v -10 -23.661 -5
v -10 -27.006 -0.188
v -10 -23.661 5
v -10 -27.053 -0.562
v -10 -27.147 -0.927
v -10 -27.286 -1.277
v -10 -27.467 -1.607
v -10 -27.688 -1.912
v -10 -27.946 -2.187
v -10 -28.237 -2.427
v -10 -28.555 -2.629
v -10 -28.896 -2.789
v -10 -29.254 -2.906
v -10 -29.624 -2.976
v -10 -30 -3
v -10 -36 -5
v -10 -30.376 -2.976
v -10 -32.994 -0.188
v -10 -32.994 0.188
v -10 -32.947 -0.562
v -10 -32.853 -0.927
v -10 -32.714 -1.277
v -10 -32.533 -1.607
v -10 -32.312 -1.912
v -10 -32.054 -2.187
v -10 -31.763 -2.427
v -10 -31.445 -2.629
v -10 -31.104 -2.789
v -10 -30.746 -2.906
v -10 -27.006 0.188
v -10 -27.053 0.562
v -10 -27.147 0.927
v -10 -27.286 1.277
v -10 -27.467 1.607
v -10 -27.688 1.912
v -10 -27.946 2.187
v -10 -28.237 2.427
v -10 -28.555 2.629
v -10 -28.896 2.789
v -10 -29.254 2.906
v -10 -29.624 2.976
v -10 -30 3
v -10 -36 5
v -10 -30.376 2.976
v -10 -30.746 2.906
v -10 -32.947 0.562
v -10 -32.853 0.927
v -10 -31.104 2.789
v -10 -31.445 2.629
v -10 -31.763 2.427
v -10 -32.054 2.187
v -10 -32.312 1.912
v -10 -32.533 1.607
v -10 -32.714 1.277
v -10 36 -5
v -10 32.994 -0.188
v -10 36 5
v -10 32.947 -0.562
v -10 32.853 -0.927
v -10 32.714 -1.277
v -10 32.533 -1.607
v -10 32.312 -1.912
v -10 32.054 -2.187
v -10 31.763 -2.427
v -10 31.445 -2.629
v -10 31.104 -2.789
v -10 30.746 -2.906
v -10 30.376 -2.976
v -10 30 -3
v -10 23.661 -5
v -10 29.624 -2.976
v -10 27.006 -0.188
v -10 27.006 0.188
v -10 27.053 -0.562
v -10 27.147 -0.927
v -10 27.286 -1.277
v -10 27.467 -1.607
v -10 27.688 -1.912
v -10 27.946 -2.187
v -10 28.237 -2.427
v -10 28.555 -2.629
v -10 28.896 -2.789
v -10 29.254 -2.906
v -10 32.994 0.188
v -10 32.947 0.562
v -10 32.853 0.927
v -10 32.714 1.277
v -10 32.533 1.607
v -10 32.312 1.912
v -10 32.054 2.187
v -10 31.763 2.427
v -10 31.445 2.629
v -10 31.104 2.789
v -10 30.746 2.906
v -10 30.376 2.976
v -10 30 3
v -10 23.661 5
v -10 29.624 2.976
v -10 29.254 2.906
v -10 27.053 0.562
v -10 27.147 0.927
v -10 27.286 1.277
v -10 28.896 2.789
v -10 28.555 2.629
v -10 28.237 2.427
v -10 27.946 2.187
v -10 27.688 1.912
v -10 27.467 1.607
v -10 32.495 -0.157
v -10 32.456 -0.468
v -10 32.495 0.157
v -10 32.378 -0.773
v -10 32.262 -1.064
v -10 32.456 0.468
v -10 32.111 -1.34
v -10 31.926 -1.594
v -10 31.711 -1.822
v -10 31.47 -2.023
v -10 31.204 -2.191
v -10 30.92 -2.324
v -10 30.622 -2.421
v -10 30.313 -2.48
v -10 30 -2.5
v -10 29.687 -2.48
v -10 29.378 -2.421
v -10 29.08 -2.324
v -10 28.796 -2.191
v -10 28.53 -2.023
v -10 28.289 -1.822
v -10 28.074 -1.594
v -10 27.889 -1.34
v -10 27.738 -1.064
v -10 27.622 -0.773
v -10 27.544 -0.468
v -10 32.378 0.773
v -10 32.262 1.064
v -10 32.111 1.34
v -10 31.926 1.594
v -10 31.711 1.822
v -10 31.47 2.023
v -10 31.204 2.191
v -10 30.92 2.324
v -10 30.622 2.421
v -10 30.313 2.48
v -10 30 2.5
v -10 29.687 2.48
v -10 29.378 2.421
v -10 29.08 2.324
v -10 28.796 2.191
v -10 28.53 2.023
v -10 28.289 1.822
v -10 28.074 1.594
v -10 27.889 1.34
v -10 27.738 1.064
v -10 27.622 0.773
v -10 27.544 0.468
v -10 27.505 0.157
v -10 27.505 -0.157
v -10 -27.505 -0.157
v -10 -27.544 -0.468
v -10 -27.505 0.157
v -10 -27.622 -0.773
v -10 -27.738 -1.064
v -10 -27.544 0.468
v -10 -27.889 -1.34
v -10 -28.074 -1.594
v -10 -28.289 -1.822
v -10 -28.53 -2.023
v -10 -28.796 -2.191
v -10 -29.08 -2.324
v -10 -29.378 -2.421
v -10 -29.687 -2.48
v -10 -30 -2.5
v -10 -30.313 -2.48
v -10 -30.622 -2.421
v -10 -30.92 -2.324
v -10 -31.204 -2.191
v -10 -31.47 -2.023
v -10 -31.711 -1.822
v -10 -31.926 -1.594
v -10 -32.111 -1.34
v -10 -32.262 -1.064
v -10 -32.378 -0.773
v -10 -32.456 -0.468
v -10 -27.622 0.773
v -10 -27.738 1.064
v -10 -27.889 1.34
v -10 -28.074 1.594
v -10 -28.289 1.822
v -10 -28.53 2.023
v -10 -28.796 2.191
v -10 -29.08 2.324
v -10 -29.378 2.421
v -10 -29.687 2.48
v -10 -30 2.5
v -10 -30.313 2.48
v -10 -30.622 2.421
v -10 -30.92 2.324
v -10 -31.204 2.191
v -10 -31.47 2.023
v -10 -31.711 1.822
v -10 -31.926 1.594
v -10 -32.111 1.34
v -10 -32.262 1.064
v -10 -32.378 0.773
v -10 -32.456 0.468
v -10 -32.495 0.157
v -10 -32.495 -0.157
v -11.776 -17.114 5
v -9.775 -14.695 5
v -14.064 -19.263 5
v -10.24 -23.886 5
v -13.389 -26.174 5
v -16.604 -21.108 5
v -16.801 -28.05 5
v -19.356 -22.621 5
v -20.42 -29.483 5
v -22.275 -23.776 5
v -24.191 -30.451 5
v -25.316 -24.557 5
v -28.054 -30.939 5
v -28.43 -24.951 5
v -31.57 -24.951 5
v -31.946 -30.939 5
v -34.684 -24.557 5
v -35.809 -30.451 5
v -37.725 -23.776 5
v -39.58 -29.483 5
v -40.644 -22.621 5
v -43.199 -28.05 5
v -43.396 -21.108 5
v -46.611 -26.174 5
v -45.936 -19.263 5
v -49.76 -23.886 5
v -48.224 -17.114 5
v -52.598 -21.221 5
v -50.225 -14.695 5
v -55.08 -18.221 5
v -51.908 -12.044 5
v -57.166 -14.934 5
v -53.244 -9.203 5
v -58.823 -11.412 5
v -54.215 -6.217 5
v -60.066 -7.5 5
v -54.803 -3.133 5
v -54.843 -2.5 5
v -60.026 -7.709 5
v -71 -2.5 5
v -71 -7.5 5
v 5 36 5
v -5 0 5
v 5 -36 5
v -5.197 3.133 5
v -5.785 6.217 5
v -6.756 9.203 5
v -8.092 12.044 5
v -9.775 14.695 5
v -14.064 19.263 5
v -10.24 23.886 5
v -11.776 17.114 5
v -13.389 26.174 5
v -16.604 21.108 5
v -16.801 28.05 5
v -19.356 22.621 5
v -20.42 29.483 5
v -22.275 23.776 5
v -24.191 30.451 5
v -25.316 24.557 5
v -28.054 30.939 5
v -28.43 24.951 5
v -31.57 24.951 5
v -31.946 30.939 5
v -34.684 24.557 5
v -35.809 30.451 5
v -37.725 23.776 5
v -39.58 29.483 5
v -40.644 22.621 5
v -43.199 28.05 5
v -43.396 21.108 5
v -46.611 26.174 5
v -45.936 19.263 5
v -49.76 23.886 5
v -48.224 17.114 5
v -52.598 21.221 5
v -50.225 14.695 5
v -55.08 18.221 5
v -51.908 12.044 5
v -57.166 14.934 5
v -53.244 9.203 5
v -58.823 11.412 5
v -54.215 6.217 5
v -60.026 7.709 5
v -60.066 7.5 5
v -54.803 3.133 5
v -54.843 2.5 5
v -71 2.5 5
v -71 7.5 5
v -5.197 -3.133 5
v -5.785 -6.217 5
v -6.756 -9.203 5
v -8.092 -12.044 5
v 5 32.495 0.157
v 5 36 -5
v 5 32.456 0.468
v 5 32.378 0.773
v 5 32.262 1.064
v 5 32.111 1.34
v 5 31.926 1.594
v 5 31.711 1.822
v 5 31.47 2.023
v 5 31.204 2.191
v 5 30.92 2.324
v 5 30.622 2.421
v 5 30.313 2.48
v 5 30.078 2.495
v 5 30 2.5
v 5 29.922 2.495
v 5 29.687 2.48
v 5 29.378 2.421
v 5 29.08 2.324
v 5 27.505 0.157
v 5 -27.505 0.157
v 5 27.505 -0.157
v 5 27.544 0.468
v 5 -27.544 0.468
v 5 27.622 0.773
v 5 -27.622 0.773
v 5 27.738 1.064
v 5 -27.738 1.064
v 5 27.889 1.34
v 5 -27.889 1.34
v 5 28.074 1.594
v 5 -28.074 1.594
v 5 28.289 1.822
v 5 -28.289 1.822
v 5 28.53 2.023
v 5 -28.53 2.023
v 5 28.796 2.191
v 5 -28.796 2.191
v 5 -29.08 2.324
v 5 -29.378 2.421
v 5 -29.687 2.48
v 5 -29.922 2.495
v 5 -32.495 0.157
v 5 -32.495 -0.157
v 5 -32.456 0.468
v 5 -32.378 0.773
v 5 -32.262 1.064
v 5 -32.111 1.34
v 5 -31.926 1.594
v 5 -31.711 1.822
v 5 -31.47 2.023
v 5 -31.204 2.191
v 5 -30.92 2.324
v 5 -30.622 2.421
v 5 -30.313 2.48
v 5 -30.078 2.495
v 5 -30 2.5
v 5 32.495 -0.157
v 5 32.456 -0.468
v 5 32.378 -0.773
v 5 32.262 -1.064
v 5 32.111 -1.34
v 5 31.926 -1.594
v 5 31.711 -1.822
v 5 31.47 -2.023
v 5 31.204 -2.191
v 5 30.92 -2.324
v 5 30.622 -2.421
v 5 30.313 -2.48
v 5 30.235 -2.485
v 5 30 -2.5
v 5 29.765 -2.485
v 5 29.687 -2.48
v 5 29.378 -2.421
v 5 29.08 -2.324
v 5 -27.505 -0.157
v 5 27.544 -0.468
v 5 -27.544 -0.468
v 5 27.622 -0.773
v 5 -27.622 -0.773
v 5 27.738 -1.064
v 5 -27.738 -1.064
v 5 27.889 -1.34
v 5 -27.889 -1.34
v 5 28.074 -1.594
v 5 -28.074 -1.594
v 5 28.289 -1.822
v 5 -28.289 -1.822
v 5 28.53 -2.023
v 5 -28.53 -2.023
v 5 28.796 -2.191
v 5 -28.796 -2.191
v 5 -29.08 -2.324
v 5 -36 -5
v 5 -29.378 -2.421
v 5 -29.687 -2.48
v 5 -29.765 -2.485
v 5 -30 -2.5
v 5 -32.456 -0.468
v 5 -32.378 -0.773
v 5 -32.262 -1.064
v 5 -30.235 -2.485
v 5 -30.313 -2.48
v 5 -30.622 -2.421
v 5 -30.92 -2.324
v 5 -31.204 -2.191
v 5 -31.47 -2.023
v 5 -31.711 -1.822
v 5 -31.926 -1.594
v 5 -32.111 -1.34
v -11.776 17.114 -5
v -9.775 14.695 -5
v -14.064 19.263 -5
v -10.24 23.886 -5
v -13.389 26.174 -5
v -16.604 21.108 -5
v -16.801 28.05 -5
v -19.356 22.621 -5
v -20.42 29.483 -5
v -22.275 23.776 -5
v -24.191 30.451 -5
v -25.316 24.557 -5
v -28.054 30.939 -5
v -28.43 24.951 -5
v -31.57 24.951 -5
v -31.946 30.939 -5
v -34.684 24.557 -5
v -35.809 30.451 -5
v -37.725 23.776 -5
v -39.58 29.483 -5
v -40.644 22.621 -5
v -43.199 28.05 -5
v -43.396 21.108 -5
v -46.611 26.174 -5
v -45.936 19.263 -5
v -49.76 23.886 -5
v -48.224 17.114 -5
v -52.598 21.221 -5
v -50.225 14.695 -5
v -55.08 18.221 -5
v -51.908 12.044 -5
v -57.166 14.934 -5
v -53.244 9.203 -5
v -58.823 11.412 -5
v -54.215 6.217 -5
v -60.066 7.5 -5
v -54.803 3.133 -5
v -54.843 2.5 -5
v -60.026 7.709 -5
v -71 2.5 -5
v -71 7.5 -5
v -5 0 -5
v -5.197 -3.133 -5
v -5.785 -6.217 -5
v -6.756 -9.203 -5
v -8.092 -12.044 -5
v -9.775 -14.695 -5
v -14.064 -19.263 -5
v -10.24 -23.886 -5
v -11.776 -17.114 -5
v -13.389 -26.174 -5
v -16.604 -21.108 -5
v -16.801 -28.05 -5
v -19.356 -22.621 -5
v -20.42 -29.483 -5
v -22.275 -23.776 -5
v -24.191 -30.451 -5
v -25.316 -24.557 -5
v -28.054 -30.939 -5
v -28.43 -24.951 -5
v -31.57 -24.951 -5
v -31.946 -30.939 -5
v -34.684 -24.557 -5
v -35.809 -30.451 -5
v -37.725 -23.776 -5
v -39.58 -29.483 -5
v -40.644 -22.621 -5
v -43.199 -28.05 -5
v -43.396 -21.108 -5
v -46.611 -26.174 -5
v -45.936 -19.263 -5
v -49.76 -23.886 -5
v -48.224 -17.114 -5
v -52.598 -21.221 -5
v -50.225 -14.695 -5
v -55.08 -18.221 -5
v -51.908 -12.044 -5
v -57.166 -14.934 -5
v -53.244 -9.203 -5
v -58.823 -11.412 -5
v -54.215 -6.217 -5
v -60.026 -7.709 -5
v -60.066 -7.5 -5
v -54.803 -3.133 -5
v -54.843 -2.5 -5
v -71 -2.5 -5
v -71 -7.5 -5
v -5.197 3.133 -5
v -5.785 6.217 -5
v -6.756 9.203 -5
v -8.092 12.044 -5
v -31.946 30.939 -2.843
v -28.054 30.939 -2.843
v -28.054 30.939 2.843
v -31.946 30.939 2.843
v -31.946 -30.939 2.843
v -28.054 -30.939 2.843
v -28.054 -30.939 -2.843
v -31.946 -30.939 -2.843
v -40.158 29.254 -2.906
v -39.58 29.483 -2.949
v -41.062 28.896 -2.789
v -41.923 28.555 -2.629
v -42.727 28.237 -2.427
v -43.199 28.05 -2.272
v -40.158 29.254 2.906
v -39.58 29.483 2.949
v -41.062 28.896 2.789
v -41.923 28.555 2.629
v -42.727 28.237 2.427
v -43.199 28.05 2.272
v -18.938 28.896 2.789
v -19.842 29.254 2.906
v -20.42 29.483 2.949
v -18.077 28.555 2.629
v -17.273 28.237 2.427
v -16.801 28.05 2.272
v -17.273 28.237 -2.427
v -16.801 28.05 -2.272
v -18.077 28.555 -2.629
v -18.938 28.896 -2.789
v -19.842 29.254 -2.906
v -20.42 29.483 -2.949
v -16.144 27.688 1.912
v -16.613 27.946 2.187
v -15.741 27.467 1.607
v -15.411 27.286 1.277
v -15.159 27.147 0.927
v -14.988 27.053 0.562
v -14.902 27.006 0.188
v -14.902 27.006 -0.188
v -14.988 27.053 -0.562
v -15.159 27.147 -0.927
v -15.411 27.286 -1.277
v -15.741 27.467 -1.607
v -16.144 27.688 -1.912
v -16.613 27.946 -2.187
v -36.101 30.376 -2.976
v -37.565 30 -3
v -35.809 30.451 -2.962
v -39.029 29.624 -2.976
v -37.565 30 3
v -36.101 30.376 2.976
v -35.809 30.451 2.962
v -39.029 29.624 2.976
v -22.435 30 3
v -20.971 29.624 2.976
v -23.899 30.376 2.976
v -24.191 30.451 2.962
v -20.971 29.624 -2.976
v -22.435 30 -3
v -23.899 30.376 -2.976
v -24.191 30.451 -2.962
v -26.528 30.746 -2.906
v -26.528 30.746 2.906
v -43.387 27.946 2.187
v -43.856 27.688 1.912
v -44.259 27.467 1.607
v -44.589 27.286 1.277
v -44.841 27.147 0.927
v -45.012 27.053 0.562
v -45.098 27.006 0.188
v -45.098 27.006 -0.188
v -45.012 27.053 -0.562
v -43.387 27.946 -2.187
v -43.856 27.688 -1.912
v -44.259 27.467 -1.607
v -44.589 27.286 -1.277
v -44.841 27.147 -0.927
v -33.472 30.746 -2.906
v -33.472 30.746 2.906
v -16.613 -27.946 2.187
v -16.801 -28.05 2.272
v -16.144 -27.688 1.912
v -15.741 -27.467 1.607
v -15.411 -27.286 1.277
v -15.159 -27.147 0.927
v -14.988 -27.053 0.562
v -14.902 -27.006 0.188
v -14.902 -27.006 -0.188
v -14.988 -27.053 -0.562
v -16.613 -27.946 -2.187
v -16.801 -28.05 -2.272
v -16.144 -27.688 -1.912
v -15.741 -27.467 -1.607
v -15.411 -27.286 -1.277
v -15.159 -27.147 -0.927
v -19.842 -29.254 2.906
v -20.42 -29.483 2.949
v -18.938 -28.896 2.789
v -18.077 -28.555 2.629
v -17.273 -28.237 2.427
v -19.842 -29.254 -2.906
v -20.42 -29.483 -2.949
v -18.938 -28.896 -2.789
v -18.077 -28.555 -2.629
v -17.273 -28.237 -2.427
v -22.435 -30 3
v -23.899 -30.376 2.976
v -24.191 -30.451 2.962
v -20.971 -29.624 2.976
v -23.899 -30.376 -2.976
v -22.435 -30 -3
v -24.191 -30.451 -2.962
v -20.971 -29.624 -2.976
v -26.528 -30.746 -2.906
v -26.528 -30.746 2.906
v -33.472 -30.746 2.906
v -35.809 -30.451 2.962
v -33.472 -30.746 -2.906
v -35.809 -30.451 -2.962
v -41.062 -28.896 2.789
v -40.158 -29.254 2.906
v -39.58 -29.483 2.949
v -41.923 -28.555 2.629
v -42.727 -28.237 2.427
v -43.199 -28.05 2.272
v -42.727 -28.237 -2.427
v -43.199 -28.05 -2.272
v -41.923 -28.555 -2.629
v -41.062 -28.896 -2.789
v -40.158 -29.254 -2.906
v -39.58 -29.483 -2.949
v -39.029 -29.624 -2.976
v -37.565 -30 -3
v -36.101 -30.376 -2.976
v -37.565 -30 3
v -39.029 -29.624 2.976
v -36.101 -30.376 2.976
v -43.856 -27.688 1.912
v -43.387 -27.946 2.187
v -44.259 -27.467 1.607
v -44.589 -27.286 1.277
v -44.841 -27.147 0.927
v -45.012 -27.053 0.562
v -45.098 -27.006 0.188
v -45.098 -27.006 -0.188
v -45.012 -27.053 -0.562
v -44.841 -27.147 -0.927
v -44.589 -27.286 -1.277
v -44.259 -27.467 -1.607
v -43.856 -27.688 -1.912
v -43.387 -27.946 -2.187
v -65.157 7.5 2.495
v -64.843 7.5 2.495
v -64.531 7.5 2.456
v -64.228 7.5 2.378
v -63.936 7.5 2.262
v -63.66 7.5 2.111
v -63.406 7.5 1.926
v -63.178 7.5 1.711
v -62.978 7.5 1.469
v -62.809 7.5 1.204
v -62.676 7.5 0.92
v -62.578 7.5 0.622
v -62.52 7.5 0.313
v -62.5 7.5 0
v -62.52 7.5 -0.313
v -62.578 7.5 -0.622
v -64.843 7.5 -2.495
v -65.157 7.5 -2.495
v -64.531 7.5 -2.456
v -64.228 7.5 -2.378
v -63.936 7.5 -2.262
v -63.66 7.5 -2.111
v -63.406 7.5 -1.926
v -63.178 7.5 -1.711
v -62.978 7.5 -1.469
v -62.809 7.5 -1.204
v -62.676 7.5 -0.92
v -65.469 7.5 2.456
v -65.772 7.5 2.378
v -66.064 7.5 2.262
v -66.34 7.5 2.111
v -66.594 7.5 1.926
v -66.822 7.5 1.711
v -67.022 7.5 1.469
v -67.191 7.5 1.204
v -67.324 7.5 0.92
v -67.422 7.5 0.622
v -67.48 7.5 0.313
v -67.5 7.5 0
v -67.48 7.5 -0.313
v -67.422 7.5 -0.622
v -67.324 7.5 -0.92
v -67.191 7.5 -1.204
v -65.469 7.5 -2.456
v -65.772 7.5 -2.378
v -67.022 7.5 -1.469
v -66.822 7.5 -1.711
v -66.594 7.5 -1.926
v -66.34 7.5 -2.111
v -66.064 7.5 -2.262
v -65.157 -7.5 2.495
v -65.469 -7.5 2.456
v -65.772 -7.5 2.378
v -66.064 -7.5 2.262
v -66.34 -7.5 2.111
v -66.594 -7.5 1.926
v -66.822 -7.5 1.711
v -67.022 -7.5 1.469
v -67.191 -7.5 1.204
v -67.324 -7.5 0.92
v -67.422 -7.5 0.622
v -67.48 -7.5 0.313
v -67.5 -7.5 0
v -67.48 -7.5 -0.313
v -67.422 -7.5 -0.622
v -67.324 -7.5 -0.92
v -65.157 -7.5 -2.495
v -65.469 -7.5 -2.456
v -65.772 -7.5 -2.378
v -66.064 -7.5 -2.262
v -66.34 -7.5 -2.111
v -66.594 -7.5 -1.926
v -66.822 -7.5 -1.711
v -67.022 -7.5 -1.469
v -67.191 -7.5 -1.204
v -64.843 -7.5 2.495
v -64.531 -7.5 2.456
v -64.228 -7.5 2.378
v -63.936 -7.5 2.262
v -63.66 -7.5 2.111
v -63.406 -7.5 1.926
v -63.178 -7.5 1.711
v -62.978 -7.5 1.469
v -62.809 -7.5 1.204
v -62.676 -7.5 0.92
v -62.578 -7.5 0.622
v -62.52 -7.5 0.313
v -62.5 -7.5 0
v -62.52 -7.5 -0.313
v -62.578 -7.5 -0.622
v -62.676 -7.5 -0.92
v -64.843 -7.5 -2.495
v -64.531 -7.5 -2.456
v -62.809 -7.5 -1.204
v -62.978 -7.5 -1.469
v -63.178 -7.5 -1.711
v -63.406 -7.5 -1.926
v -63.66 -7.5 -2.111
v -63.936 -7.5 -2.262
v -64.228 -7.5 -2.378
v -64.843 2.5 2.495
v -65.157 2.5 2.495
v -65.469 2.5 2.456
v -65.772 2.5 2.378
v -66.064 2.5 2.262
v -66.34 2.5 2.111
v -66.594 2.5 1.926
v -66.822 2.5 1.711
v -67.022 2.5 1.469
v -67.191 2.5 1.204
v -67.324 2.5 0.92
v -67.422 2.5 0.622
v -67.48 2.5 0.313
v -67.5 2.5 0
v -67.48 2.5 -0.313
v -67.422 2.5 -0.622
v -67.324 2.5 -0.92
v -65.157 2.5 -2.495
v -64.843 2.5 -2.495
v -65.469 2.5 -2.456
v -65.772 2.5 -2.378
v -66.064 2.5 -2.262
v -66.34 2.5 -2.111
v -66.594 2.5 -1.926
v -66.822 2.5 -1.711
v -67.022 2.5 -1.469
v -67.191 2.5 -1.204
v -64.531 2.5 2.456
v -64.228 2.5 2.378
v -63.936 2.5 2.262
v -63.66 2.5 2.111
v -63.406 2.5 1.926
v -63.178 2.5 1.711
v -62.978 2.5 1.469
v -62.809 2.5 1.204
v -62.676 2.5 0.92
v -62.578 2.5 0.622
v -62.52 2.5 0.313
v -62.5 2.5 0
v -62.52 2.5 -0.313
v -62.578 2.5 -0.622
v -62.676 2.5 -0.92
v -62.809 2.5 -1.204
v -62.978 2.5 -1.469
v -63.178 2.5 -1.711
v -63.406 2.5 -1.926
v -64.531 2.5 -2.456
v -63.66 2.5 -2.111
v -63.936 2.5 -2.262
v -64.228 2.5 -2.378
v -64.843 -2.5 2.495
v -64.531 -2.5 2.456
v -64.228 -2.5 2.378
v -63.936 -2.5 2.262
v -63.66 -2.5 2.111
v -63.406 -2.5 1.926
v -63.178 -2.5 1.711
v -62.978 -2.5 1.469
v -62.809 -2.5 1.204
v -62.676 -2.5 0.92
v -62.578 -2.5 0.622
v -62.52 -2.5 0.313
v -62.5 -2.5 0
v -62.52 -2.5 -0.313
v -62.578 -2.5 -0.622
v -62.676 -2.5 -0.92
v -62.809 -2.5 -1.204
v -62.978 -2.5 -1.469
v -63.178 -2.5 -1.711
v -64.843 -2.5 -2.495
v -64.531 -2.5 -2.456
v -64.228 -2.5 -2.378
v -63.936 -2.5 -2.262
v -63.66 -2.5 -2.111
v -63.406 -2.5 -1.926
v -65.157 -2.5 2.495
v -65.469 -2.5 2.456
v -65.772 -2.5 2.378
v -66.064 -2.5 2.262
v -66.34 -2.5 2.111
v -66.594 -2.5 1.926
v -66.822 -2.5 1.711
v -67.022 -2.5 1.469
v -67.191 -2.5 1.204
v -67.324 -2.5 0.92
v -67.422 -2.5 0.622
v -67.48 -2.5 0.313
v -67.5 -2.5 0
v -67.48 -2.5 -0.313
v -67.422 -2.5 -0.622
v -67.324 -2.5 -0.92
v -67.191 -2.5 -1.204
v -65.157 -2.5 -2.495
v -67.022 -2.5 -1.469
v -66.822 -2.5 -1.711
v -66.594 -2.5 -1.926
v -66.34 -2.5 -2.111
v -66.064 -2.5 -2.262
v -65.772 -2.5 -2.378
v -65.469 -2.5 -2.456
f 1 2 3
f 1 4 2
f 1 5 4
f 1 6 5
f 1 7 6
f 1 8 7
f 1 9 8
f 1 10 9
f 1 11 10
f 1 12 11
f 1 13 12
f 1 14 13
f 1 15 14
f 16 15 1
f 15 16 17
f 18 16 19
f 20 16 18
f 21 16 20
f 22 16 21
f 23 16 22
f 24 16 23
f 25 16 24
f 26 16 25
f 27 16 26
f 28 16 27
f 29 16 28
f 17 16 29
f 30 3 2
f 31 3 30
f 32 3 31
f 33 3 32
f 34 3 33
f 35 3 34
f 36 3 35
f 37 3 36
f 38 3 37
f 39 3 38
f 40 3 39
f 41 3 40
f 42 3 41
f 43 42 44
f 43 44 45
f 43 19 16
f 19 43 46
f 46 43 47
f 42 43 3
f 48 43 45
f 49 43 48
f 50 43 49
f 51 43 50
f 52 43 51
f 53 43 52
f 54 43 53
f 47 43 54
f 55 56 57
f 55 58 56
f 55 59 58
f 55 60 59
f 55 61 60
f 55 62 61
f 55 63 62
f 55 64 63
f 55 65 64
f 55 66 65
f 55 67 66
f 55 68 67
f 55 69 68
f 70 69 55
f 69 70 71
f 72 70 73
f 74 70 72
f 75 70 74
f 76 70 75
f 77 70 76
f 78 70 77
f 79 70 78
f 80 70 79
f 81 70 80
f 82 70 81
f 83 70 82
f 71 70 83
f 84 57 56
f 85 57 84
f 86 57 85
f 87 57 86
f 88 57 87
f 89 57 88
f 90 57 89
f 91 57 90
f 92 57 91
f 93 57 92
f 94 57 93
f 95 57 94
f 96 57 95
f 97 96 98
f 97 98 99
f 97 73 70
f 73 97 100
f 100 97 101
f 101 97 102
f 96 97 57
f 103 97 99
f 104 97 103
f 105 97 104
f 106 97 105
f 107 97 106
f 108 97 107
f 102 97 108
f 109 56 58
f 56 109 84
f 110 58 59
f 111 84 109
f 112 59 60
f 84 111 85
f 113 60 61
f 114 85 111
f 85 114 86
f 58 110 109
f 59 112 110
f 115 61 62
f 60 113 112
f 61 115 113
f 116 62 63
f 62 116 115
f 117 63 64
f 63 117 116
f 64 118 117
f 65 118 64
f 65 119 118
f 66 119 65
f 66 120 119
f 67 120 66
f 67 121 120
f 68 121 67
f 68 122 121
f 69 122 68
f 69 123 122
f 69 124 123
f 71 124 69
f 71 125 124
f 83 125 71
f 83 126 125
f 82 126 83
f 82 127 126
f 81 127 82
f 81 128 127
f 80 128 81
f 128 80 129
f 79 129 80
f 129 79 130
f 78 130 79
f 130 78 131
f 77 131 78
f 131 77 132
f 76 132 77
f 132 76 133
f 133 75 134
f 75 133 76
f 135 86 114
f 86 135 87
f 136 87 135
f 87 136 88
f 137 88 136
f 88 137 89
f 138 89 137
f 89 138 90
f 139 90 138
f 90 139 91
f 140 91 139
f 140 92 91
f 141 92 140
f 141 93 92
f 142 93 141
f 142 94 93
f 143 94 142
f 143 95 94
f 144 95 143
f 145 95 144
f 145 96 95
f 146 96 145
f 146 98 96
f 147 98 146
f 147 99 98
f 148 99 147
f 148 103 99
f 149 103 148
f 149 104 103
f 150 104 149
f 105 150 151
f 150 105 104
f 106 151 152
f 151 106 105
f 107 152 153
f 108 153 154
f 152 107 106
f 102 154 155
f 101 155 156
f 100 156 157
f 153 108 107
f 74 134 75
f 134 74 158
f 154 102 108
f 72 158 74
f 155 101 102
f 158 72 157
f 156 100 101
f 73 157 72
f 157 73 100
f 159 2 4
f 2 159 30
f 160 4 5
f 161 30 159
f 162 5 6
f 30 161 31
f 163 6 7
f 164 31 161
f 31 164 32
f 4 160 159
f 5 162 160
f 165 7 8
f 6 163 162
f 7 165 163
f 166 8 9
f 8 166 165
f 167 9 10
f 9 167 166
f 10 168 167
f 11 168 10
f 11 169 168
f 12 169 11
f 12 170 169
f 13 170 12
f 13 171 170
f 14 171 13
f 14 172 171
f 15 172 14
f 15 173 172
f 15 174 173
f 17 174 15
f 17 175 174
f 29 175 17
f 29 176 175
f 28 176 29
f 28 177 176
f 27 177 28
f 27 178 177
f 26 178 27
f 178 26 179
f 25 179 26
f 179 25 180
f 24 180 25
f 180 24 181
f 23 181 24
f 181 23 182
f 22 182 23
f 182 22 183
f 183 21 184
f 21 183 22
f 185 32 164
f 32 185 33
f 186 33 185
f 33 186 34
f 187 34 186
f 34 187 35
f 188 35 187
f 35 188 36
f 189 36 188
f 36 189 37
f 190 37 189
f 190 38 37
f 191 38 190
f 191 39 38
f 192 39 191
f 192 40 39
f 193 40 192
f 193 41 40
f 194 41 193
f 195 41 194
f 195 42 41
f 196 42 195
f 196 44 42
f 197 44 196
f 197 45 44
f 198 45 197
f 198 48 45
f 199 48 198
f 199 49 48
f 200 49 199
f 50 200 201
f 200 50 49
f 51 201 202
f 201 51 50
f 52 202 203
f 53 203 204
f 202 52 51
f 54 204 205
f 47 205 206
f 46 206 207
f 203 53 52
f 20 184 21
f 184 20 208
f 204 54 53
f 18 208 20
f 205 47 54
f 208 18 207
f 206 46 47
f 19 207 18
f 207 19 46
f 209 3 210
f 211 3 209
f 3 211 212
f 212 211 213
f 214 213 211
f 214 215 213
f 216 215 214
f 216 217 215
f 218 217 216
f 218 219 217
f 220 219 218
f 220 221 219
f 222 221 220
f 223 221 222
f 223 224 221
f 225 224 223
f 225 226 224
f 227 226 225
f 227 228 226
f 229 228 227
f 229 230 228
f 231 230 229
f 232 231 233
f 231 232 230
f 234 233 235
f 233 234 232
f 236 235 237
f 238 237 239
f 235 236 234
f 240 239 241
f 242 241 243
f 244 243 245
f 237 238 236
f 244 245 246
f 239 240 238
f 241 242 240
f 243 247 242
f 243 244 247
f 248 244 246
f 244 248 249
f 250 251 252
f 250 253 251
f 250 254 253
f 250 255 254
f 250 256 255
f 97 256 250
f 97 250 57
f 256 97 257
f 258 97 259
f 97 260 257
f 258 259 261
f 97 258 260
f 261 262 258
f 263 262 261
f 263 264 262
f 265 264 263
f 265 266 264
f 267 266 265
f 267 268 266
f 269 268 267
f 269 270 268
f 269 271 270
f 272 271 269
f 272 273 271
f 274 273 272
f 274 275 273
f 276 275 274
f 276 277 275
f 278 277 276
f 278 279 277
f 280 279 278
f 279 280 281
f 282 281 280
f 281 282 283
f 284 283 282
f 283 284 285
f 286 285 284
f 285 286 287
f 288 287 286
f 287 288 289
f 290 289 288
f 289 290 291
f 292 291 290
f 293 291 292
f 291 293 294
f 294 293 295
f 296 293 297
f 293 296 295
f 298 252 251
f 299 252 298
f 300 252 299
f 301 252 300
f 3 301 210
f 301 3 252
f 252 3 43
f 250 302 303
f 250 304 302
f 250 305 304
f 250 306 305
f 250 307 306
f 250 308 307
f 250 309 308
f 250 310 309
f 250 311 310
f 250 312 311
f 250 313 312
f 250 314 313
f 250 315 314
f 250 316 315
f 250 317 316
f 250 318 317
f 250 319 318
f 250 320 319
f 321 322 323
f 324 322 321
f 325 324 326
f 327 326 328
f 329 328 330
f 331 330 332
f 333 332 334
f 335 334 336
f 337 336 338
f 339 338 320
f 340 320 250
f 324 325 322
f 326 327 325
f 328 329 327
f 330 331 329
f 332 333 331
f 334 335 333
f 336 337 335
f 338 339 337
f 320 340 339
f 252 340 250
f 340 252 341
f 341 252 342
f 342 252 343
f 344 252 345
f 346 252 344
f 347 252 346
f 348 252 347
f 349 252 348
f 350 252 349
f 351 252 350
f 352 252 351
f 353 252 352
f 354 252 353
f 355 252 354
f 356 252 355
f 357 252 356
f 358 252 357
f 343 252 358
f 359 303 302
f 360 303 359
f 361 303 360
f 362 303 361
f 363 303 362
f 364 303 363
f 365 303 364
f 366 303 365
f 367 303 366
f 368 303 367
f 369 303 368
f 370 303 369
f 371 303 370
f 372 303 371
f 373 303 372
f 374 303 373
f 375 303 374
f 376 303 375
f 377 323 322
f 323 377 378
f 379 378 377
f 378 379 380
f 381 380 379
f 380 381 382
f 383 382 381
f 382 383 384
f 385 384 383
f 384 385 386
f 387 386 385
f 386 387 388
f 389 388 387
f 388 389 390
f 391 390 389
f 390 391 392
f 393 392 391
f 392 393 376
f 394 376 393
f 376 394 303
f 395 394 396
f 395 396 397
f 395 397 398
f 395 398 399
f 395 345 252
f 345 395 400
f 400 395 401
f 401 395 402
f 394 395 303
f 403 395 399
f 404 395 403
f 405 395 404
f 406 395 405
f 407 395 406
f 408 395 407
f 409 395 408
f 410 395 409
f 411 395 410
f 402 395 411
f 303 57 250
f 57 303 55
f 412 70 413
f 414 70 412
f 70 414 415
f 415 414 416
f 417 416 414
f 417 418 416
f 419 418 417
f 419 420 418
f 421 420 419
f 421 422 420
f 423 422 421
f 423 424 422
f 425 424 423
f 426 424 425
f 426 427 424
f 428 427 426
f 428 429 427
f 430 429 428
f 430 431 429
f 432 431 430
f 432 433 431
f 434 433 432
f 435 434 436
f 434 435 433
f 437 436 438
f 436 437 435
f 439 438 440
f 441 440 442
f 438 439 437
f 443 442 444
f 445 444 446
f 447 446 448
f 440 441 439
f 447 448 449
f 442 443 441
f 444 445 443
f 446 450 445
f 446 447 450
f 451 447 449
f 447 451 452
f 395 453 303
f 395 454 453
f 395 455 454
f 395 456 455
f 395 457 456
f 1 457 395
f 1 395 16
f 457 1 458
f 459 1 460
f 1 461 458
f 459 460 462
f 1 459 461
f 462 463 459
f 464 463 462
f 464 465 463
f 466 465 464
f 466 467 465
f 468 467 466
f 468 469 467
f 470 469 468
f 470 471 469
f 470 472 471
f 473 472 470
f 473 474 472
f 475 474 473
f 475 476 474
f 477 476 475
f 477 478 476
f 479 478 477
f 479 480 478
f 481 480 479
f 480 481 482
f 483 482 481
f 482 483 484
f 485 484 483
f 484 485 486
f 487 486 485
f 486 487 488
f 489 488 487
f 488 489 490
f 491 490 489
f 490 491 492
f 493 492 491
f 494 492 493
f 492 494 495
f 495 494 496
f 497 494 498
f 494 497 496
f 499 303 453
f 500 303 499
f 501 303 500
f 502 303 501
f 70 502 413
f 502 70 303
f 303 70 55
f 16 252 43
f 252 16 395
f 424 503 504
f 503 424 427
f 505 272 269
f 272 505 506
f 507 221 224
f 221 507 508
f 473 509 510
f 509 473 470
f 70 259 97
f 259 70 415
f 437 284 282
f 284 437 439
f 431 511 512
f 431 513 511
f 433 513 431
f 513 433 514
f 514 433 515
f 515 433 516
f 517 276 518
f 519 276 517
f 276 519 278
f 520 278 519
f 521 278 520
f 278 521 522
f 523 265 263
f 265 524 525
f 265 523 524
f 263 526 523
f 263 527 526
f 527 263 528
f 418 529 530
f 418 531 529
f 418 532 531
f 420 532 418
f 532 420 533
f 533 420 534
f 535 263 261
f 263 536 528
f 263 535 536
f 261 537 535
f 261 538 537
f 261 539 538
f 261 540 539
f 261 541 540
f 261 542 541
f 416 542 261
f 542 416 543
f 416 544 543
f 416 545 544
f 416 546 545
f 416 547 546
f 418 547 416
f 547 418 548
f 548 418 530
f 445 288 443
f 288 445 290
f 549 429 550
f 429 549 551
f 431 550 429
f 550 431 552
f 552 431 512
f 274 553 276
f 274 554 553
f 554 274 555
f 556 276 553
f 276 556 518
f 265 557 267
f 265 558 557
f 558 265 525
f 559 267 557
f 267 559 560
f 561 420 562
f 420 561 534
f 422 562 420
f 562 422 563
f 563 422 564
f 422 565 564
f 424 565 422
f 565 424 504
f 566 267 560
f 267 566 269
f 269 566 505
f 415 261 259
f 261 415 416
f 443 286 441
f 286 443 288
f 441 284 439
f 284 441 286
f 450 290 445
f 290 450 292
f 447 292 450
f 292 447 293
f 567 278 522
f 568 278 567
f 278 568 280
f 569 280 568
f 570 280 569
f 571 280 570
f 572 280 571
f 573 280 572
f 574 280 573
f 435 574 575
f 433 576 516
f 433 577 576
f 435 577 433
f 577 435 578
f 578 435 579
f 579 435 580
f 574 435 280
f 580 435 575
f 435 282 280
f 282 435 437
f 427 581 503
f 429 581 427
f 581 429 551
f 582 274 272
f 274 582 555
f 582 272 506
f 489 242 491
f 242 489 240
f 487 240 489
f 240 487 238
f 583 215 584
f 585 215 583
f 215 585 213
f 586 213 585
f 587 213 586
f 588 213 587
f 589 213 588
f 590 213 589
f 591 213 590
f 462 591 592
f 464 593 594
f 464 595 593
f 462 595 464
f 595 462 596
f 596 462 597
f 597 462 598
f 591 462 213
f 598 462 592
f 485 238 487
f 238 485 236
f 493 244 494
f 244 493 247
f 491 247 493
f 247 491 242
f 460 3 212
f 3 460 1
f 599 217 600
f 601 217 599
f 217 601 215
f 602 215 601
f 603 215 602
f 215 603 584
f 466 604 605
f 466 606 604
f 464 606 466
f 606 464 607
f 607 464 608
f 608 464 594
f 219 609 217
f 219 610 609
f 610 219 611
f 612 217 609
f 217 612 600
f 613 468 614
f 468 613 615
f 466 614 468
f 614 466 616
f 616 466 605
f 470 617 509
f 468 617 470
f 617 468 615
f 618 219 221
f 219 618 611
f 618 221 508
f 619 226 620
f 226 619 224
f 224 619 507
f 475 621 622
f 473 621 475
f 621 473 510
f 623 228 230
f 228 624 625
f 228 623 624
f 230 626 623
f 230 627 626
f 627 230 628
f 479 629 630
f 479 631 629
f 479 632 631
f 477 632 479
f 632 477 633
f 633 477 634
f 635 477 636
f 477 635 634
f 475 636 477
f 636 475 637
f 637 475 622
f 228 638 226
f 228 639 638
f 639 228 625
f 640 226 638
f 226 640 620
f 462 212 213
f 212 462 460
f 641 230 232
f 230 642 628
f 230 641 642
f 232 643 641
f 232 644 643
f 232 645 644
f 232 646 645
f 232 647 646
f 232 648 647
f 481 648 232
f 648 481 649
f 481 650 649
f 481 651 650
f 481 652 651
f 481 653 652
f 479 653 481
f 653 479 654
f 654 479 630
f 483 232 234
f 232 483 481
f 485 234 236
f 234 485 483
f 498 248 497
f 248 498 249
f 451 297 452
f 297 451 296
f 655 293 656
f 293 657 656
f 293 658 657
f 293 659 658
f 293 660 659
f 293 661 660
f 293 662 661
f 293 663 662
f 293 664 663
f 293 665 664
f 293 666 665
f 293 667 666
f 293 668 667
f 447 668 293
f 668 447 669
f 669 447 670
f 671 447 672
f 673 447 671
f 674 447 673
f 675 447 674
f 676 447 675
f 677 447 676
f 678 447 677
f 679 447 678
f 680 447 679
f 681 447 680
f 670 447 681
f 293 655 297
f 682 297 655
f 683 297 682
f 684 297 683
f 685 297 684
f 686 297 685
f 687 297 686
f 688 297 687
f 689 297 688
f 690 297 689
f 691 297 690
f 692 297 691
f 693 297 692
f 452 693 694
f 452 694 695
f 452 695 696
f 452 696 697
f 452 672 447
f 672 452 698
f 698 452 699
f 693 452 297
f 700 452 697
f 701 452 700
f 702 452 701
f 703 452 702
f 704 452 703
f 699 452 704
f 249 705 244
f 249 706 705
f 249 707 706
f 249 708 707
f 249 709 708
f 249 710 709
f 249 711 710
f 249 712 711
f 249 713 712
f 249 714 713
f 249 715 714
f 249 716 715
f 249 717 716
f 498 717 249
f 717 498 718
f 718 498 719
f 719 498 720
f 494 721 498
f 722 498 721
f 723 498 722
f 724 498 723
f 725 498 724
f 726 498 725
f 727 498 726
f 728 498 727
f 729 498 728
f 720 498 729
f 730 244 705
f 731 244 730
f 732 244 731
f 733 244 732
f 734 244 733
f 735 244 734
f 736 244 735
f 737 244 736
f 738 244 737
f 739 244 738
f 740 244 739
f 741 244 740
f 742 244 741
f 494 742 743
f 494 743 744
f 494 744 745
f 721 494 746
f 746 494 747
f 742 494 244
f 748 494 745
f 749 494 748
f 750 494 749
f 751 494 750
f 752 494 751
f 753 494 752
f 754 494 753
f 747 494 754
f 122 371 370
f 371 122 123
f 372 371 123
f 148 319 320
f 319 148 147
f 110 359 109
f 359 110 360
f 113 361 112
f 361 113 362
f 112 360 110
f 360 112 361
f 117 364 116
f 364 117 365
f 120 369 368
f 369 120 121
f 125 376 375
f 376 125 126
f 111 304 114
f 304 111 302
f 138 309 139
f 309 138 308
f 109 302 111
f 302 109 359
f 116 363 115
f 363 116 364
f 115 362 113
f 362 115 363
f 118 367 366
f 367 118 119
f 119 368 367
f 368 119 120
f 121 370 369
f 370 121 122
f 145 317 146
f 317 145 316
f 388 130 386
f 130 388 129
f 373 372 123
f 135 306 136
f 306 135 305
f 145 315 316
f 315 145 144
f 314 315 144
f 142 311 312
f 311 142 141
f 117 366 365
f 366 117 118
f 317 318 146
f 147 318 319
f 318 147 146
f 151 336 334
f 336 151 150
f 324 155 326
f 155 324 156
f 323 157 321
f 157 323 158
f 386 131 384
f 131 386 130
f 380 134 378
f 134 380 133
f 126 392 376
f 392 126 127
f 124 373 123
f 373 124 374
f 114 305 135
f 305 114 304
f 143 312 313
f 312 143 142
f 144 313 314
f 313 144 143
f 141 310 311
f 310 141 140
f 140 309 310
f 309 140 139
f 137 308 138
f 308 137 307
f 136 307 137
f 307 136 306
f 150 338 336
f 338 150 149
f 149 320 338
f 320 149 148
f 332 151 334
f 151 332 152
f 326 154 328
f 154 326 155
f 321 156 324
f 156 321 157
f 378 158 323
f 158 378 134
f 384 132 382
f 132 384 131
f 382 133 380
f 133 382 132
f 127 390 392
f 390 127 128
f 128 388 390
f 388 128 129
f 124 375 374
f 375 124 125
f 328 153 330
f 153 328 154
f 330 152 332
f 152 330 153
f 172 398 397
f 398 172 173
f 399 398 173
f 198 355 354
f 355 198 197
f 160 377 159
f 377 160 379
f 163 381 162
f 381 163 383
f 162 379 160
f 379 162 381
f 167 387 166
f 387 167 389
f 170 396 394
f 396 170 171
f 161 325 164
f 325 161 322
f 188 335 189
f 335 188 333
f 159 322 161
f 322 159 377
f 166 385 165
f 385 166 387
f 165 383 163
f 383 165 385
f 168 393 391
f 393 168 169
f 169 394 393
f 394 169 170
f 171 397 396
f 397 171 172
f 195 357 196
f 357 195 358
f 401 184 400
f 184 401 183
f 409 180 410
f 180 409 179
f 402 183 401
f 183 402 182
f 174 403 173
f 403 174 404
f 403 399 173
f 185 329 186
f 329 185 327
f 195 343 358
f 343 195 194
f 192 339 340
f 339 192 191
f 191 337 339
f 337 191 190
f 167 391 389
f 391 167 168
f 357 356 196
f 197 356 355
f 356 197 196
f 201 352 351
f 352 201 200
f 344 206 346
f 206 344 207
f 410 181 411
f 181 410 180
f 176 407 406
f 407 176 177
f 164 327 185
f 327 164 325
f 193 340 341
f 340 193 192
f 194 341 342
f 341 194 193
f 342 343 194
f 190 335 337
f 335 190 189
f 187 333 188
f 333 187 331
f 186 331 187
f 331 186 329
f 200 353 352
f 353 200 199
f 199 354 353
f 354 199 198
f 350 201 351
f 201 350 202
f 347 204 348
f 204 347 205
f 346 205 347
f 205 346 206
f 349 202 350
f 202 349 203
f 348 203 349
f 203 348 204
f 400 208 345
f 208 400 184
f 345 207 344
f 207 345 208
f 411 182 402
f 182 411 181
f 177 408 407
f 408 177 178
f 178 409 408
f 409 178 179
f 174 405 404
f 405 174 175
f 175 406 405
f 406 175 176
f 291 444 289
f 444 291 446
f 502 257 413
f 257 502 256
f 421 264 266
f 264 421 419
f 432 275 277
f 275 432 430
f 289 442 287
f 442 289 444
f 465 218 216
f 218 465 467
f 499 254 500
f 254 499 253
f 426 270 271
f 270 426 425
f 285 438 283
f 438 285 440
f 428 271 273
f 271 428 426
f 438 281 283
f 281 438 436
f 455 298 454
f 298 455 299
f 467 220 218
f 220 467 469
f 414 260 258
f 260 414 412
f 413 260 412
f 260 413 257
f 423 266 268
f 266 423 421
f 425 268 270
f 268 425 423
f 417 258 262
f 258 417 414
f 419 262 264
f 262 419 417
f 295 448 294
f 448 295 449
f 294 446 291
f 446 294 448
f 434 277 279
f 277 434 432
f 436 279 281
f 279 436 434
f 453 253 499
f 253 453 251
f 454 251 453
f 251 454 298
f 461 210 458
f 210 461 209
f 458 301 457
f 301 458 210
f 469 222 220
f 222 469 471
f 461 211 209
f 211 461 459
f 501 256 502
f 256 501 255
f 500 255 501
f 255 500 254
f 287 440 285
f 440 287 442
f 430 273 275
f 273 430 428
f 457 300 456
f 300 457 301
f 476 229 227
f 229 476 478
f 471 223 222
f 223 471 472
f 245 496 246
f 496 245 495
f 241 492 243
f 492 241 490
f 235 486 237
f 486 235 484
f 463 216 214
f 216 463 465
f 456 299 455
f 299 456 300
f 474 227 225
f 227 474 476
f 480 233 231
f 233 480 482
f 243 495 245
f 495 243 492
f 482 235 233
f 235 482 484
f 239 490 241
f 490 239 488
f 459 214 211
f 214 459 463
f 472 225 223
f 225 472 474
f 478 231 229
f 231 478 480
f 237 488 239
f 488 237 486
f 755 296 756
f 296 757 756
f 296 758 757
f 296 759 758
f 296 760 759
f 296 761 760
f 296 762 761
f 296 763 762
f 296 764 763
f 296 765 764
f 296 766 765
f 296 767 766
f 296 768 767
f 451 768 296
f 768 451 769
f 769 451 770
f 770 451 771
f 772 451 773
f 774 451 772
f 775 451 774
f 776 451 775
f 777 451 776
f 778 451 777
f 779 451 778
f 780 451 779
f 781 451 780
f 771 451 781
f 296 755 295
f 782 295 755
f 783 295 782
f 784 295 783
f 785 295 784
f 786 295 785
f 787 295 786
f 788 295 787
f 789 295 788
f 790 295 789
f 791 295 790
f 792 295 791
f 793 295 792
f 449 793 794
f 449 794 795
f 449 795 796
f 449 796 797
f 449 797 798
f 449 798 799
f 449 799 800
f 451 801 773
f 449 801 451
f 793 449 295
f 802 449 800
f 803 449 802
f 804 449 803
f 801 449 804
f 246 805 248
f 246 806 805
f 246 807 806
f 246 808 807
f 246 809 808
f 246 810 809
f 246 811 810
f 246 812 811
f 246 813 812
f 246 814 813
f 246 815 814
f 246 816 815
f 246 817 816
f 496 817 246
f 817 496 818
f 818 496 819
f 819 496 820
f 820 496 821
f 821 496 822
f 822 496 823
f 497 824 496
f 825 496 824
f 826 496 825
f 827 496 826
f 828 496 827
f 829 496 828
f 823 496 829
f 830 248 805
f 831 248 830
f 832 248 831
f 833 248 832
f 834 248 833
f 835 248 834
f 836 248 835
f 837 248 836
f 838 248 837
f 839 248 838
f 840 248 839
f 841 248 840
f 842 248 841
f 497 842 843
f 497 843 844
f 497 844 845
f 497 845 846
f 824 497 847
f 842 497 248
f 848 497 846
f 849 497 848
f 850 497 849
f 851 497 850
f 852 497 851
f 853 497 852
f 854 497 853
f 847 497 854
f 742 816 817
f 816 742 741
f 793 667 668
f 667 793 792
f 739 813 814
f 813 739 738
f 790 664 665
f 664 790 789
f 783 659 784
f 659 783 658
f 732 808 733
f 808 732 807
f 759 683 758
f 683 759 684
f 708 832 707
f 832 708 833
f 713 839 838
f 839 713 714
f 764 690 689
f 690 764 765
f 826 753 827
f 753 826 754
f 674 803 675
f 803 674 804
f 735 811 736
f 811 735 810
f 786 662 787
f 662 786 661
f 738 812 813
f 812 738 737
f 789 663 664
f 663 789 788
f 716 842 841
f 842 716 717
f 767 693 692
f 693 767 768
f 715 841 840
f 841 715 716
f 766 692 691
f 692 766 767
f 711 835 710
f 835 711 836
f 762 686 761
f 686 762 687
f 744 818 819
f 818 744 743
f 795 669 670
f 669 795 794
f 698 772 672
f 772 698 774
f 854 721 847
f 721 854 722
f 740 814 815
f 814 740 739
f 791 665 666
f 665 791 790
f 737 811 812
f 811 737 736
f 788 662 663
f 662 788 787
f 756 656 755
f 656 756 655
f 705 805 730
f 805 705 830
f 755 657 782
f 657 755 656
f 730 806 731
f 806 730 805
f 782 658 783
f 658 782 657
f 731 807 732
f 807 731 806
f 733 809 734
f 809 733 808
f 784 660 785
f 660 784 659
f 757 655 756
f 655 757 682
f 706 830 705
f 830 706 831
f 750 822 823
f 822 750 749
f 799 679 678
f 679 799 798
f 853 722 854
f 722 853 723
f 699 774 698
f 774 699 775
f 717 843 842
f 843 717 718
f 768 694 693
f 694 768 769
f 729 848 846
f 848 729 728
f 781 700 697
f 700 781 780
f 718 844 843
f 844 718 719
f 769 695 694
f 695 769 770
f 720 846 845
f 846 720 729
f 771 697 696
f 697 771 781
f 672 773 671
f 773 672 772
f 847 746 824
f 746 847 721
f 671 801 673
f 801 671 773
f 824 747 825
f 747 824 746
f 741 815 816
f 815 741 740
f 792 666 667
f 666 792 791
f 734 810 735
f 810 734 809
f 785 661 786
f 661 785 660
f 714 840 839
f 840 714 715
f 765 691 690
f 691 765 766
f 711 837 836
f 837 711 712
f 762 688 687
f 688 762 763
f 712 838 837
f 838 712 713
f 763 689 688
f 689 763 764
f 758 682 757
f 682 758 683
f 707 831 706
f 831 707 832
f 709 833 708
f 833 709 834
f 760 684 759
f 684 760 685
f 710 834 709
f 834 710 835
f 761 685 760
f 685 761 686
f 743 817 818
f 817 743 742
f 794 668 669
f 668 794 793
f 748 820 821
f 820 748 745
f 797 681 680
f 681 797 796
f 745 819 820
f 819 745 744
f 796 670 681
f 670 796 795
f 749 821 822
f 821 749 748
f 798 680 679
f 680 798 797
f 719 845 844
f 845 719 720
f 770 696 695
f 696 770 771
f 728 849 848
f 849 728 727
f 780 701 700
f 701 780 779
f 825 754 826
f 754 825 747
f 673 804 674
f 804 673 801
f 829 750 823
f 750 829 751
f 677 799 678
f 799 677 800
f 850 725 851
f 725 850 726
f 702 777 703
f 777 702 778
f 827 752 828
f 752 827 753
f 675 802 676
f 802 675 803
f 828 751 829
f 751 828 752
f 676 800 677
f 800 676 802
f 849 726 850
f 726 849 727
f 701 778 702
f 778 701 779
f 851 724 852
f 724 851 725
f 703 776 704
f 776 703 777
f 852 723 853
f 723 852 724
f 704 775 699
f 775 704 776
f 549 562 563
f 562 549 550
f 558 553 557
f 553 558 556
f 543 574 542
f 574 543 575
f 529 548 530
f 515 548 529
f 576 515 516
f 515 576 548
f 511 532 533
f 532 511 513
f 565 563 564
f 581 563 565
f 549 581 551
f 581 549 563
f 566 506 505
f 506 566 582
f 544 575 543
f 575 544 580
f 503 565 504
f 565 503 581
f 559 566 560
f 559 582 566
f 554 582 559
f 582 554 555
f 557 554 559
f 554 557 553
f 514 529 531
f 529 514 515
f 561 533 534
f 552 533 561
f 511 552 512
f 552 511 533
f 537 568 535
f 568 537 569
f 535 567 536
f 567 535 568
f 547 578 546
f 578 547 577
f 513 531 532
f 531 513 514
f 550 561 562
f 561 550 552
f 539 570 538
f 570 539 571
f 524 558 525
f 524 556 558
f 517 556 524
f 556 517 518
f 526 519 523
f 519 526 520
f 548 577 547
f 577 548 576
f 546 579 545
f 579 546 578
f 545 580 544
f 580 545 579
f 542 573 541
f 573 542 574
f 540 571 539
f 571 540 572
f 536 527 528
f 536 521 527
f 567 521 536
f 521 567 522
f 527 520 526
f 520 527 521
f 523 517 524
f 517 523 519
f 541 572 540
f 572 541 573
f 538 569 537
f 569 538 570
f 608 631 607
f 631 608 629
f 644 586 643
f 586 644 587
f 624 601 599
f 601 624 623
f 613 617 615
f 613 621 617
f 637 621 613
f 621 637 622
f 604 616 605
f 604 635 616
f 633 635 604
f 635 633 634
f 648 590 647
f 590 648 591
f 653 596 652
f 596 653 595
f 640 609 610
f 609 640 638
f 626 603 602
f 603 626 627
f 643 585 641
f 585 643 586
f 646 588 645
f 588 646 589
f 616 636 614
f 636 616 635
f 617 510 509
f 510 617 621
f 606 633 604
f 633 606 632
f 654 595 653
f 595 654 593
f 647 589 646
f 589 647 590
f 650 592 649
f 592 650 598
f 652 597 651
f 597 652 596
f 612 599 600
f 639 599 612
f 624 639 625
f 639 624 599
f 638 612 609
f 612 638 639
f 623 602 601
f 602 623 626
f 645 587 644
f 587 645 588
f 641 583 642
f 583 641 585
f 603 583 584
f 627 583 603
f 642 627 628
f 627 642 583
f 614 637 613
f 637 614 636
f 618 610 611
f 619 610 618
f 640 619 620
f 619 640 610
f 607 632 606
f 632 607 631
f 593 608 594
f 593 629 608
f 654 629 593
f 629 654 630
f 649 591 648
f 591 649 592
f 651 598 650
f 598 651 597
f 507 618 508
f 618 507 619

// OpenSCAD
// par X. HINAULT
// avril 2015 - Juillet 2016

$fn=50;

// variable du chariot
beam=20;
bearing=13;
correct=0.1;


// longtout=24+bearing*2; // longueur totale sens "largeur"

largtout=60; // écartement des trous, calculé

difference() {

	union() {
		translate([-5/2,0,0])cube([15,largtout+12,10], center=true); 
		translate([-30,0,0])cylinder(h=10, r=31, $fn=50, center=true); 

		translate([-60,0,0])cube([22,15,10], center=true);

	}

	// trous fixation chariot
	//rotate([0,90,0])translate([0,longtout/2-bearing/2+1,0])#cylinder(h=20, r=2.5, $fn=50, center=true);
	//rotate([0,90,0])translate([0,-(longtout/2-bearing/2+1),0])#cylinder(h=20, r=2.5, $fn=50, center=true);

	rotate([0,90,0])translate([0,largtout/2,0]) #cylinder(h=20, r=2.5, $fn=50, center=true);
	rotate([0,90,0])translate([0,-(largtout/2),0]) #cylinder(h=20, r=2.5, $fn=50, center=true);

	// empreinte vis chariot
	//#rotate([0,90,0])translate([0,0,6/2])cube([12,25,6],center=true);

	//translate([6/2,beam/2+bearing/2-correct,0])rotate([0,90,0])cube([12,10,6],center=true);
	//translate([6/2,-(beam/2+bearing/2-correct),0])rotate([0,90,0])cube([12,10,6],center=true);

	//translate([6/2,beam/2+bearing/2-correct,0])rotate([0,90,0])cylinder(h=20, r=2.35, $fn=50, center=true);
	//translate([6/2,-(beam/2+bearing/2-correct),0])rotate([0,90,0])cylinder(h=20, r=2.35, $fn=50, center=true);

	// support outil
	#translate([-30,0,0])cylinder(h=20, r=25, $fn=50, center=true); 

	//translate([-20,0,0])rotate([0,90,0])#cylinder(h=20, r=1.5, $fn=50, center=true);

	#translate([-55,0,0])cube([40,5,12], center=true);

	#translate([-65,0,0])rotate([90,0,0])cylinder(h=20, r=2.5, $fn=50, center=true); // axe serrage
	
	// guide tourne vis
	rotate([0,90,0]) translate([0,largtout/2,-30]) cylinder(h=40, r=3, $fn=50, center=true);
	rotate([0,90,0]) translate([0,-(largtout/2),-30]) cylinder(h=40, r=3, $fn=50, center=true);
	
}
